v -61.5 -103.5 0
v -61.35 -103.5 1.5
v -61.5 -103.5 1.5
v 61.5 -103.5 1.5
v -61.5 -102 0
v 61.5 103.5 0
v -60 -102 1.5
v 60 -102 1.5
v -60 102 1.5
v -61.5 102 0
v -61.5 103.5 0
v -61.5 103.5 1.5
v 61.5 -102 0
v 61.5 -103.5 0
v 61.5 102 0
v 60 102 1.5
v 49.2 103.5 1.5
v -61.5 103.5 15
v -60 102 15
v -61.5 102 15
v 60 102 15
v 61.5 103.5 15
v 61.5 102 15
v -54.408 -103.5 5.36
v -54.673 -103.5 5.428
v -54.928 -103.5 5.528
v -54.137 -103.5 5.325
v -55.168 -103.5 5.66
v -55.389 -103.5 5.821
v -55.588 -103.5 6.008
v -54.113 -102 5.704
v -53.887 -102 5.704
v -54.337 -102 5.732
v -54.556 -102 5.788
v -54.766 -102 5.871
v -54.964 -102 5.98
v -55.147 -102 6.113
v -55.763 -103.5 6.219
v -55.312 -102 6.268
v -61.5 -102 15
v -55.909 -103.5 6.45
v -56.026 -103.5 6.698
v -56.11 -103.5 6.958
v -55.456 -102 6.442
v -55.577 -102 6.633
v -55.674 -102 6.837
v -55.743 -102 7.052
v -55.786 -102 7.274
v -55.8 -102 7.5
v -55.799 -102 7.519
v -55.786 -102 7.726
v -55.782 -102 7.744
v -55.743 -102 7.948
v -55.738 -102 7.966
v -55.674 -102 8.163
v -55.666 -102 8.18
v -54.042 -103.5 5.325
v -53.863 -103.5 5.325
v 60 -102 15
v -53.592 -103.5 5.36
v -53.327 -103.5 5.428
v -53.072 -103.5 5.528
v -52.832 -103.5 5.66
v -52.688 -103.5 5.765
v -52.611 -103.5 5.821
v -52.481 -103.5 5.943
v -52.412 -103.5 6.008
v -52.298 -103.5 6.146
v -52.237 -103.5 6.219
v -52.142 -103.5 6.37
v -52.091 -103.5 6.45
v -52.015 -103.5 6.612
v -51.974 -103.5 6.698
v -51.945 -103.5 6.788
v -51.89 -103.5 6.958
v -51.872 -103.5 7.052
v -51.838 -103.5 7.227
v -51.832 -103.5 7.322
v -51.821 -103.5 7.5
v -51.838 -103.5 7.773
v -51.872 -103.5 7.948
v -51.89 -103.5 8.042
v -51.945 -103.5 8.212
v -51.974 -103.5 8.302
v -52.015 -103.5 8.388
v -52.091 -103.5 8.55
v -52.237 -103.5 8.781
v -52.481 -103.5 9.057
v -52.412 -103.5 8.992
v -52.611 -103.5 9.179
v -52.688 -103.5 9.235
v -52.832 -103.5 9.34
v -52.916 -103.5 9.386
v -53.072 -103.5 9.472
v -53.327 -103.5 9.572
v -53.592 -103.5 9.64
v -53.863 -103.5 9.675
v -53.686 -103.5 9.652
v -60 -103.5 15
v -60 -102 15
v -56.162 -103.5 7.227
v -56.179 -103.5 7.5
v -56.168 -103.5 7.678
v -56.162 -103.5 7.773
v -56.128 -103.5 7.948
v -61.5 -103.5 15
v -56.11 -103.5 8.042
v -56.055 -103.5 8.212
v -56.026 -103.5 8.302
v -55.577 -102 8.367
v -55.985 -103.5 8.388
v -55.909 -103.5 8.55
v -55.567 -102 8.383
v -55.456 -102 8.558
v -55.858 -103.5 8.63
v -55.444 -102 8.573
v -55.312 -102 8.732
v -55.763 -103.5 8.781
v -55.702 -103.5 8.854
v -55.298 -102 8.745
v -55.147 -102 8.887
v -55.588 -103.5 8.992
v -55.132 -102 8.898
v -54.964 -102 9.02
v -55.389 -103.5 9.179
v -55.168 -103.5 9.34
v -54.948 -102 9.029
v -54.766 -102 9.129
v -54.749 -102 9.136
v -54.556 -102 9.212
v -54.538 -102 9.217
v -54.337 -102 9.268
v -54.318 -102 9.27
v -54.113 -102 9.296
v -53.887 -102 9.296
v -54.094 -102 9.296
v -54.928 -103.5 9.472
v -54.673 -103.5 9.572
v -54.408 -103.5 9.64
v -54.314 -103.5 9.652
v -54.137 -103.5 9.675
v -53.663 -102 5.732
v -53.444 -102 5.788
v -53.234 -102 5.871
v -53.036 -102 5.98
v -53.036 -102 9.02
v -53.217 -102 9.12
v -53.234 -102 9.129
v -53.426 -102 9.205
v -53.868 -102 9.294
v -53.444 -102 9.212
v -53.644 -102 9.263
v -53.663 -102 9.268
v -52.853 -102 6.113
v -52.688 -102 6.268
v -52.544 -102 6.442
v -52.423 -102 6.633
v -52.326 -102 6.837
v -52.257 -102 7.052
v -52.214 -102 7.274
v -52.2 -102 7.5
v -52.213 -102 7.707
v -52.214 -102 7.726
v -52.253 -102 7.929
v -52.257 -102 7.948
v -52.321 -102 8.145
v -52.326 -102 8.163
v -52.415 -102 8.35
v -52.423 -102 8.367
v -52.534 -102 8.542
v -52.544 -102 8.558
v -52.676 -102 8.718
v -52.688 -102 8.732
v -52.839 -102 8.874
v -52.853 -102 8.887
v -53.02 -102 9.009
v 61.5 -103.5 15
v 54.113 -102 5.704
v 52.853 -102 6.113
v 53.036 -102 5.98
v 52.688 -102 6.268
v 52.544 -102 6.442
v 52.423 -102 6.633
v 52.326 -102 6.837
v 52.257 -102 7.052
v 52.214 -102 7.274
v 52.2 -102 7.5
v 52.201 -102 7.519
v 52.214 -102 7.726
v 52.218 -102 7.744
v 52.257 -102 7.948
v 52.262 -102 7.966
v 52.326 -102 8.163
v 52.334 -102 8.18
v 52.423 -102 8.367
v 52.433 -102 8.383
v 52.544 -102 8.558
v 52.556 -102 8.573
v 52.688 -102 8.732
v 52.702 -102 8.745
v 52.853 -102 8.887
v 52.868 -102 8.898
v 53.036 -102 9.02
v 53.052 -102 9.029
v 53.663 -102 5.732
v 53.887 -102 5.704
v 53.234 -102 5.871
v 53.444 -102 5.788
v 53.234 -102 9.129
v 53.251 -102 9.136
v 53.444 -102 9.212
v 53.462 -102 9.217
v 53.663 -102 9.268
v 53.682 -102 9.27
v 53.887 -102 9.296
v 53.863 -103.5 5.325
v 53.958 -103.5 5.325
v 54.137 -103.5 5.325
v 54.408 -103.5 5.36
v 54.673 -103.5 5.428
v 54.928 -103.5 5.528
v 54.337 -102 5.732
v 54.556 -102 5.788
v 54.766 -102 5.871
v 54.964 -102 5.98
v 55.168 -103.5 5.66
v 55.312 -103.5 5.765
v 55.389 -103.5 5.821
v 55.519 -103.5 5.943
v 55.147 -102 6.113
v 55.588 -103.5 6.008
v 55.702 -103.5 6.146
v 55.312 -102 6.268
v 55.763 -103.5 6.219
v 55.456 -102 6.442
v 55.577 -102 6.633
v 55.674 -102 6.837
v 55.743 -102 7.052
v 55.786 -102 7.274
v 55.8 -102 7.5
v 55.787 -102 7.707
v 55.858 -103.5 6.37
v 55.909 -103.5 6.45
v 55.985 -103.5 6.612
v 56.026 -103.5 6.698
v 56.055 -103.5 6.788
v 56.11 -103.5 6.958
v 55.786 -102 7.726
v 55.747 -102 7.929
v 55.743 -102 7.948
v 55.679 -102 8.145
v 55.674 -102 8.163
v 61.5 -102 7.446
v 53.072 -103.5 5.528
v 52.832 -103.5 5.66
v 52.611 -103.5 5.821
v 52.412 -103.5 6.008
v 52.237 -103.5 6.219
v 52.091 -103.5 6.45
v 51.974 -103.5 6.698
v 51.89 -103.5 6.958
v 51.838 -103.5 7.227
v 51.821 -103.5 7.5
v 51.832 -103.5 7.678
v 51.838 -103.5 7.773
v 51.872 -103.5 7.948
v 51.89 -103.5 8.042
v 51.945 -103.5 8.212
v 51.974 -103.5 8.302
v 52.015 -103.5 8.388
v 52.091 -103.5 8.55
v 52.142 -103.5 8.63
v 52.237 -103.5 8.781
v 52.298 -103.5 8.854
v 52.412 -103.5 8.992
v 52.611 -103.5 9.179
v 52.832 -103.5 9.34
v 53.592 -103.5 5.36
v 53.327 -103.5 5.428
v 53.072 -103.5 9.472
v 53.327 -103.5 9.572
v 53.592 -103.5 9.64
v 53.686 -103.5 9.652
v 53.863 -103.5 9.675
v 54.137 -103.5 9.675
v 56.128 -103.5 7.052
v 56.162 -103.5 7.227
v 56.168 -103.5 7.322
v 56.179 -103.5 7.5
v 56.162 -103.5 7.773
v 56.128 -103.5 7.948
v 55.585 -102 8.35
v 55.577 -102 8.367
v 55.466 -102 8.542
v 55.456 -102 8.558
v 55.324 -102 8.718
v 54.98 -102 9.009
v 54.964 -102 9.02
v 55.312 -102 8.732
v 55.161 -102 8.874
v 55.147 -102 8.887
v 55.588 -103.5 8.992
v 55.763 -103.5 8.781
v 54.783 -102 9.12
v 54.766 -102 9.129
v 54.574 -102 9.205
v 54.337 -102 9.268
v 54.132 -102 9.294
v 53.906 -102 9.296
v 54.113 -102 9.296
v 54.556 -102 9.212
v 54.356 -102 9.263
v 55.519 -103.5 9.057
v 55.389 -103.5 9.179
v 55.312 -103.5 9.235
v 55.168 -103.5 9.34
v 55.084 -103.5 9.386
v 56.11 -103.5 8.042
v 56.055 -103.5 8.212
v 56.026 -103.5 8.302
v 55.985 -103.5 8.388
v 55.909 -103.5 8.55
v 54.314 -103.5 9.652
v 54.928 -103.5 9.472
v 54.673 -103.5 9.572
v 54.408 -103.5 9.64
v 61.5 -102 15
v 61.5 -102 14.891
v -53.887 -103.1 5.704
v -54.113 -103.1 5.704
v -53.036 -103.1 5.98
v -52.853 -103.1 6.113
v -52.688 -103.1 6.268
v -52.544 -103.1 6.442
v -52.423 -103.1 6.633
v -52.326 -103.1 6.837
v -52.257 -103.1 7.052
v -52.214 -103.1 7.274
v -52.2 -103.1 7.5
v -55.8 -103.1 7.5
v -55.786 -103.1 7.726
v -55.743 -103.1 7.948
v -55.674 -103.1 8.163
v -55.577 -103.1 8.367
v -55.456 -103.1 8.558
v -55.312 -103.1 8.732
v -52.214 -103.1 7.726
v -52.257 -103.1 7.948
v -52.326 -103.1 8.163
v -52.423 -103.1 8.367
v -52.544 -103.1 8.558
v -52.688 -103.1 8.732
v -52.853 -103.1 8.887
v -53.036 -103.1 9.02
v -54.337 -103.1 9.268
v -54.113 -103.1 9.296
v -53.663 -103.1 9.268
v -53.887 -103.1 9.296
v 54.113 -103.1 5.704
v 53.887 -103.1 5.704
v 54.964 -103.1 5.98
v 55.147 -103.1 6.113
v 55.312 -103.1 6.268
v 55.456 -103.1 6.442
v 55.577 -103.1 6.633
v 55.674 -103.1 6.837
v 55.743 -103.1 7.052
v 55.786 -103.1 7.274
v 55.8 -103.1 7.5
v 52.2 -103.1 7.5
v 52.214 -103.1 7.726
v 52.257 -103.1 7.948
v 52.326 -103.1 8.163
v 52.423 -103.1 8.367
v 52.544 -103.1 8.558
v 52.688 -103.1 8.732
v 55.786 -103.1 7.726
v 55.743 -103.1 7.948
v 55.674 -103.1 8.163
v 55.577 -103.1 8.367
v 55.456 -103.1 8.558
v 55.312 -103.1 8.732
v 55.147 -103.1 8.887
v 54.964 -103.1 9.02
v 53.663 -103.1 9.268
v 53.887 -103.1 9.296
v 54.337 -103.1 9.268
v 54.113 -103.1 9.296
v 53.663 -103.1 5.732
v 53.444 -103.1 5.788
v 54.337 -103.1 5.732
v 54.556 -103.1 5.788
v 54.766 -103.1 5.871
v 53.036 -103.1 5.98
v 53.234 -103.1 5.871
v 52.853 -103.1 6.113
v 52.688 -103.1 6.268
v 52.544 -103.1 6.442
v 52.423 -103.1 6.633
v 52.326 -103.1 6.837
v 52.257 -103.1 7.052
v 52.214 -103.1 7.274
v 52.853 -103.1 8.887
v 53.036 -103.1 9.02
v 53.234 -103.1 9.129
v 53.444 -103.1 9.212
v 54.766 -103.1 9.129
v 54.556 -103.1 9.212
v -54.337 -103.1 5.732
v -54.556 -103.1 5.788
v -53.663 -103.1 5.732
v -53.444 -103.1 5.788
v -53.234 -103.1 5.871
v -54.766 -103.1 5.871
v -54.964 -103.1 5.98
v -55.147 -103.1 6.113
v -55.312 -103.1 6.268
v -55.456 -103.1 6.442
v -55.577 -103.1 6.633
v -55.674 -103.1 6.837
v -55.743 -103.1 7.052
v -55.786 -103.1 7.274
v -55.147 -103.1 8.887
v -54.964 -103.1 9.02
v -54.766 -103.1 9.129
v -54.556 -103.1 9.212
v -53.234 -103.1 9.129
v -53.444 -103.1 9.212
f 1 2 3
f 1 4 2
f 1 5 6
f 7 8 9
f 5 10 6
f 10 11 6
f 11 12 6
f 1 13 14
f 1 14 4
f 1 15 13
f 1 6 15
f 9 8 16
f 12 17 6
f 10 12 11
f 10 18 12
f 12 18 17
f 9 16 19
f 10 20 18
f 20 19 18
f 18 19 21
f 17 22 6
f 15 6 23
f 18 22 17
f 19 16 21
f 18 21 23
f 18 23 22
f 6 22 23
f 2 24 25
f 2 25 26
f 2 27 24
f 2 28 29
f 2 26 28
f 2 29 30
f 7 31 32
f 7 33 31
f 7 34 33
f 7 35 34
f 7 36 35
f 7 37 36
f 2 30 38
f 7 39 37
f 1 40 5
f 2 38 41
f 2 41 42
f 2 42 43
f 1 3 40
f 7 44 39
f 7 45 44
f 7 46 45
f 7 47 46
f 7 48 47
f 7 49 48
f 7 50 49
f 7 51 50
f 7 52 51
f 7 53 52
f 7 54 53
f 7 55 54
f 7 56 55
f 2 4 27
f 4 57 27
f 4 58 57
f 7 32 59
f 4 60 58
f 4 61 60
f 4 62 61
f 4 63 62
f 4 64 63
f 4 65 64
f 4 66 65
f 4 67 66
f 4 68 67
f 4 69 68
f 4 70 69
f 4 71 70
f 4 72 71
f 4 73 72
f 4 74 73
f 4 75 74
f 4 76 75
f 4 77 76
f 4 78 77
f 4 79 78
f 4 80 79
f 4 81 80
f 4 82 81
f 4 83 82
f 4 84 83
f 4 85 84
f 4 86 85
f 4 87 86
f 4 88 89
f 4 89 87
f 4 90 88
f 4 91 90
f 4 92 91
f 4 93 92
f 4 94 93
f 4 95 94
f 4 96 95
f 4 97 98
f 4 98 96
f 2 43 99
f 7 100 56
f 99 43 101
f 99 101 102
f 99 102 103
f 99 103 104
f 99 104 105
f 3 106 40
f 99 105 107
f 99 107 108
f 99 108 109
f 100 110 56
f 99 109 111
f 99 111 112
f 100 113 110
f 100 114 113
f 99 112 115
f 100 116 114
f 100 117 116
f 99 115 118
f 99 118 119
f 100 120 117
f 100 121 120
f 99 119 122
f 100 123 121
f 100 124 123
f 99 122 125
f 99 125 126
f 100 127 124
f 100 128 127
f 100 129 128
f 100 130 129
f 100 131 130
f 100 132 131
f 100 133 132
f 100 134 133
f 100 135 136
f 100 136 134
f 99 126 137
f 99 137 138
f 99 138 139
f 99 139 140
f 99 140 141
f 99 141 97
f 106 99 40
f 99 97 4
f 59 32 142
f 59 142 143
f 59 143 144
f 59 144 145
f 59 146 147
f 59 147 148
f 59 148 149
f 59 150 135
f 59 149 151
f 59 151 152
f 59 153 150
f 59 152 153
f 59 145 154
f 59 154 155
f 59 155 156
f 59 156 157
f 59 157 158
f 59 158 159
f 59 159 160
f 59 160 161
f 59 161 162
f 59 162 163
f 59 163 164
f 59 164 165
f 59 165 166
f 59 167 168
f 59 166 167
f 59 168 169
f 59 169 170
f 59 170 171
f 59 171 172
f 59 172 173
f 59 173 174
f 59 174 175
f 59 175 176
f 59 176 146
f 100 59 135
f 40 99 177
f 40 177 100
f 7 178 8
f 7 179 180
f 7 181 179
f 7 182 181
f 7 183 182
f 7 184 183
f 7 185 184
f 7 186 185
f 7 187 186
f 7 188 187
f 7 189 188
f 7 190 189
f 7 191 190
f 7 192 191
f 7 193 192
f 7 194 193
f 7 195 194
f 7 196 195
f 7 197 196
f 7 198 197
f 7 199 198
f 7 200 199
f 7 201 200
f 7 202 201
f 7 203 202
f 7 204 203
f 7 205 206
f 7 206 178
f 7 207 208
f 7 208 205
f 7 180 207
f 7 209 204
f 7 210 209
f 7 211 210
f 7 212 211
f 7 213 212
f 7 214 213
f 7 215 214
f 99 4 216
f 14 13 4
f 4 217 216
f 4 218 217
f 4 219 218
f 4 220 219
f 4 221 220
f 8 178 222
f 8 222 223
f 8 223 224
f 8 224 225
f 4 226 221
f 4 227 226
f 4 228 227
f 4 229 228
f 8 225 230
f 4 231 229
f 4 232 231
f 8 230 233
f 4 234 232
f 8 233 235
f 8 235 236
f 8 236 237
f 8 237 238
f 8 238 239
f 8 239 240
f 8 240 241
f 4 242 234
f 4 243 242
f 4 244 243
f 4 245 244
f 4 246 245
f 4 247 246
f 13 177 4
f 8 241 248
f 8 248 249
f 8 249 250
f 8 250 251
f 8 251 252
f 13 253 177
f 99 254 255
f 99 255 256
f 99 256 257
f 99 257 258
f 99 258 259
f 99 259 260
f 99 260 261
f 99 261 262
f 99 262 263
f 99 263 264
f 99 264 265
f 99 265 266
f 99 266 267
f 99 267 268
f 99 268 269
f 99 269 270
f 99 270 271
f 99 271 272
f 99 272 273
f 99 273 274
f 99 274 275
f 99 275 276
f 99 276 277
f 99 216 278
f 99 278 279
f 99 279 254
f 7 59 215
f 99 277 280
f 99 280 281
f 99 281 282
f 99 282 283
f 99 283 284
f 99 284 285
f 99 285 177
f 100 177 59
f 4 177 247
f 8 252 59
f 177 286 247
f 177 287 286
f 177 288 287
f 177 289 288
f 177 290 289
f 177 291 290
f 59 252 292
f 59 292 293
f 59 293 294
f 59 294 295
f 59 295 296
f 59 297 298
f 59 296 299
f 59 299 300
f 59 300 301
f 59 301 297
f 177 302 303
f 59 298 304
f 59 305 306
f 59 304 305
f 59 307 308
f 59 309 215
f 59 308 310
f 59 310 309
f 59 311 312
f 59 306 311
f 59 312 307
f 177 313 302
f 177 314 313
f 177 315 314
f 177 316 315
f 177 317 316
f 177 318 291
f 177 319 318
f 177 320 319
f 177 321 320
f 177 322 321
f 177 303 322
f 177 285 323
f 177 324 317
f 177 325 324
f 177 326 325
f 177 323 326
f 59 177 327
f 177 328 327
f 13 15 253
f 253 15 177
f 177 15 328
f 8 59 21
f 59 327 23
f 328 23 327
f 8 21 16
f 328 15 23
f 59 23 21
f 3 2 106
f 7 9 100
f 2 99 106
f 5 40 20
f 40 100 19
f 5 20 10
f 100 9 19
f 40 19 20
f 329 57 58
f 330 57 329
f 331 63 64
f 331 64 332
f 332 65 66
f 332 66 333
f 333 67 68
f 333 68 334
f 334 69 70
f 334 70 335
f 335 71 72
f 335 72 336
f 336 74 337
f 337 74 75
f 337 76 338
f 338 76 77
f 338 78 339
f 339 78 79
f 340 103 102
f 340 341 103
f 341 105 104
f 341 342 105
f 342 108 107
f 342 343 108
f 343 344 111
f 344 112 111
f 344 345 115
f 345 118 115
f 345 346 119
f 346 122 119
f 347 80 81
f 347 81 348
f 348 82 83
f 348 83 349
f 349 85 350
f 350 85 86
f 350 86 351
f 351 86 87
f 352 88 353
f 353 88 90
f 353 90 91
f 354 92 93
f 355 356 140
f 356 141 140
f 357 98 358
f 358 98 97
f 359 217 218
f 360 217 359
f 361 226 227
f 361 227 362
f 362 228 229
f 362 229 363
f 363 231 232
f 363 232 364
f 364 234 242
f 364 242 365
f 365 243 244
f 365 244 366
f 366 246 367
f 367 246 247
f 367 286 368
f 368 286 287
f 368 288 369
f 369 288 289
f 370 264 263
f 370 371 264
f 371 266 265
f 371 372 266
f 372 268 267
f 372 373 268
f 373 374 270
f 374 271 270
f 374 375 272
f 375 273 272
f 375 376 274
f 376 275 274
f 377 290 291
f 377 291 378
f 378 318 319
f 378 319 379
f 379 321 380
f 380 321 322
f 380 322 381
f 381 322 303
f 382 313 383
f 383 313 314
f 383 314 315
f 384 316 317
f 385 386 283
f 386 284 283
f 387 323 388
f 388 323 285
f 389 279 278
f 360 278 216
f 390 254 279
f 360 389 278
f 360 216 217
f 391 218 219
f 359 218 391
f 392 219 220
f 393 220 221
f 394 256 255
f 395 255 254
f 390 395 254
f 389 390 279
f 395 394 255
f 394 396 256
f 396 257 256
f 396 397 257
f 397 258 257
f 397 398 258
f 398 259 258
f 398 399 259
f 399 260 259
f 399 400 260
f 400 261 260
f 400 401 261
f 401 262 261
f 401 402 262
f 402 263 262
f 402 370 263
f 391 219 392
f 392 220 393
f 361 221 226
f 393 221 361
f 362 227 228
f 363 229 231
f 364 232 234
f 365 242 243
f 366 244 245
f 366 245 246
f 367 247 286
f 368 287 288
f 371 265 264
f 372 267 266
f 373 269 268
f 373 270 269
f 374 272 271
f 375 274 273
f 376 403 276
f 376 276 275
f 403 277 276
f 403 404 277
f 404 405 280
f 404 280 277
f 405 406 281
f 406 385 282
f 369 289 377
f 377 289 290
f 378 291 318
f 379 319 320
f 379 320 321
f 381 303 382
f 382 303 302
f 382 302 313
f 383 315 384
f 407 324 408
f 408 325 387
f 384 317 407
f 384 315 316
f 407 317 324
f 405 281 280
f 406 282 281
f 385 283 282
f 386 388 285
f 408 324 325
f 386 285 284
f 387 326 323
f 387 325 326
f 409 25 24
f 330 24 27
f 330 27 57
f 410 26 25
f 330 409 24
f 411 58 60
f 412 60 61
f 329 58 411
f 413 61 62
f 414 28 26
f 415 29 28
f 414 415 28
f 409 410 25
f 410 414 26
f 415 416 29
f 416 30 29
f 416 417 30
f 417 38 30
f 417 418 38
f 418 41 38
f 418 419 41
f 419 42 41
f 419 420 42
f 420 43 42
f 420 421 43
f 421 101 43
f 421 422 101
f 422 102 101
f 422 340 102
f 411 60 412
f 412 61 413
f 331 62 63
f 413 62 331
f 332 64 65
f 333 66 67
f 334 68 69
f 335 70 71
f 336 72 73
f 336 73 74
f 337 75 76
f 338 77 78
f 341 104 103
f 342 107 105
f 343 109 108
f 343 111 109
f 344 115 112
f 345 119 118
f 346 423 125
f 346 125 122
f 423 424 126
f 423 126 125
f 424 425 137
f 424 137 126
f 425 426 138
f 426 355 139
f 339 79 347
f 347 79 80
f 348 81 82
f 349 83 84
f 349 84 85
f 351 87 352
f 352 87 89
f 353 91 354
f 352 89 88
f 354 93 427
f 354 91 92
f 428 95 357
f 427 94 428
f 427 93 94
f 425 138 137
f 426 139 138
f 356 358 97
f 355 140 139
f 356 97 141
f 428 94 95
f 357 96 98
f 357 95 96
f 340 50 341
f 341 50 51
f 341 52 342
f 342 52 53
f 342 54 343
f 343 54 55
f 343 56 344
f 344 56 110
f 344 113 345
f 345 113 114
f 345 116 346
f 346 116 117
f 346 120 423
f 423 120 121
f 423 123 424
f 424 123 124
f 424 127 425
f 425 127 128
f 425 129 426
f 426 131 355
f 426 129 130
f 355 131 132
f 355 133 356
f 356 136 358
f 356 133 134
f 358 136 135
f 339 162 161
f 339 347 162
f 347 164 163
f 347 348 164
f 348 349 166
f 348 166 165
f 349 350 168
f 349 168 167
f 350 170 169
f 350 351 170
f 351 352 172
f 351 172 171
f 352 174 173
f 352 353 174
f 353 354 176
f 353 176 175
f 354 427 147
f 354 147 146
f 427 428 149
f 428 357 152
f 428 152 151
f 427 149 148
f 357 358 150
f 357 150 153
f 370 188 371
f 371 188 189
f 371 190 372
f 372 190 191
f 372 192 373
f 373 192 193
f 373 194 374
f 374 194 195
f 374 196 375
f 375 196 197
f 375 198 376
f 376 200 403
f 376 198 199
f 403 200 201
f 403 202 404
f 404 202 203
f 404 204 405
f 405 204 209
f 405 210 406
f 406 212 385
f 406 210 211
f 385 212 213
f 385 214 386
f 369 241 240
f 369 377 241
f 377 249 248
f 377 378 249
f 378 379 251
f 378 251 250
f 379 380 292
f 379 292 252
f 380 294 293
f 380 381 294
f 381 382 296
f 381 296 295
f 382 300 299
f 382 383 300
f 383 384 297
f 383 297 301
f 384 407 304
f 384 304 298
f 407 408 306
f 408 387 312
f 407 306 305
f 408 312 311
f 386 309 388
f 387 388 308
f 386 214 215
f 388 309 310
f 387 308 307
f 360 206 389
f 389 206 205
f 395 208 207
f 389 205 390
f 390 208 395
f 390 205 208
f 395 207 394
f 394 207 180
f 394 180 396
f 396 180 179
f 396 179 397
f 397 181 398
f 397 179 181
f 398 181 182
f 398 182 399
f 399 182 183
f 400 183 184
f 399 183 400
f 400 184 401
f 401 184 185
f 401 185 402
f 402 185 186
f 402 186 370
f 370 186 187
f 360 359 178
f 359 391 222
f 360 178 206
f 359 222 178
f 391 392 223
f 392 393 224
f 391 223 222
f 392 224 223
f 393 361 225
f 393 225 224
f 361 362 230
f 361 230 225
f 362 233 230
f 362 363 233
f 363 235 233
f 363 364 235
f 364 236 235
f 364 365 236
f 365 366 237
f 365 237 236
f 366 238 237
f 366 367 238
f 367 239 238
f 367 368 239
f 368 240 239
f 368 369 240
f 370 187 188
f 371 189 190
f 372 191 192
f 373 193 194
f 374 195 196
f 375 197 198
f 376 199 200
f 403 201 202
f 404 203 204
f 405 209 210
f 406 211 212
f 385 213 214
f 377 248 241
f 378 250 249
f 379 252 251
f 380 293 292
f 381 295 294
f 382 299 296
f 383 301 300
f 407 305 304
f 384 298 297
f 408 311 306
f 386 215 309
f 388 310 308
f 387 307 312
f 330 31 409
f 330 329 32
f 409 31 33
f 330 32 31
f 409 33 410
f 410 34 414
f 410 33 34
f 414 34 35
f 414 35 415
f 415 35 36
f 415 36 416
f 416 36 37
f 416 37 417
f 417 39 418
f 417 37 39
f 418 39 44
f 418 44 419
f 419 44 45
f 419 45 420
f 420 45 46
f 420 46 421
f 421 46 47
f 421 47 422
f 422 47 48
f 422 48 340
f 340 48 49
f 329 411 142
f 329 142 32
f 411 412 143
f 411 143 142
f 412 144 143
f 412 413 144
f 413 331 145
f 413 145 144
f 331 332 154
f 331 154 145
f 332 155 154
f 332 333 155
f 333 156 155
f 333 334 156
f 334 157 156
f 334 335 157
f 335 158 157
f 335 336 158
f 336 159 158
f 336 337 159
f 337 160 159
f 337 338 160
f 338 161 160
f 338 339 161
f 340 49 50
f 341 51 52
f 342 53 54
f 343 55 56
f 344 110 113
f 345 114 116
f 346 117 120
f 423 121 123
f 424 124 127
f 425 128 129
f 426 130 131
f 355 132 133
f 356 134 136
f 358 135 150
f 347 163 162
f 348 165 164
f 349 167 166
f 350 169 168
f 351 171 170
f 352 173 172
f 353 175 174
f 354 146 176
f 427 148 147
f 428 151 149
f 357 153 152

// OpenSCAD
$fn = 50;


difference() {
	union() {
		translate(v = [-61.5000000000, -103.5000000000, 0]) {
			cube(size = [123, 207, 1.5000000000]);
		}
		translate(v = [-61.5000000000, 102.0000000000, 0]) {
			cube(size = [123, 1.5000000000, 15]);
		}
		translate(v = [-61.5000000000, -103.5000000000, 0]) {
			cube(size = [123, 1.5000000000, 15]);
		}
		translate(v = [60.0000000000, -103.5000000000, 0]) {
			cube(size = [1.5000000000, 207, 15]);
		}
		translate(v = [-61.5000000000, -103.5000000000, 0]) {
			cube(size = [1.5000000000, 207, 15]);
		}
	}
	union() {
		translate(v = [54.0000000000, -105.0000000000, 7.5000000000]) {
			rotate(a = [90, 0, 0]) {
				difference() {
					union() {
						#translate(v = [0, 0, -15.0000000000]) {
							cylinder(h = 15, r = 1.5000000000);
						}
						#translate(v = [0, 0, -1.9000000000]) {
							cylinder(h = 1.9000000000, r1 = 1.8000000000, r2 = 3.6000000000);
						}
						#translate(v = [0, 0, -15.0000000000]) {
							cylinder(h = 15, r = 1.8000000000);
						}
						#translate(v = [0, 0, -15.0000000000]) {
							cylinder(h = 15, r = 1.5000000000);
						}
					}
					union();
				}
			}
		}
		translate(v = [-54.0000000000, -105.0000000000, 7.5000000000]) {
			rotate(a = [90, 0, 0]) {
				difference() {
					union() {
						#translate(v = [0, 0, -15.0000000000]) {
							cylinder(h = 15, r = 1.5000000000);
						}
						#translate(v = [0, 0, -1.9000000000]) {
							cylinder(h = 1.9000000000, r1 = 1.8000000000, r2 = 3.6000000000);
						}
						#translate(v = [0, 0, -15.0000000000]) {
							cylinder(h = 15, r = 1.8000000000);
						}
						#translate(v = [0, 0, -15.0000000000]) {
							cylinder(h = 15, r = 1.5000000000);
						}
					}
					union();
				}
			}
		}
		translate(v = [54.0000000000, -105.0000000000, 7.5000000000]) {
			rotate(a = [90, 0, 0]) {
				difference() {
					union() {
						#translate(v = [0, 0, -15.0000000000]) {
							cylinder(h = 15, r = 1.5000000000);
						}
						#translate(v = [0, 0, -1.9000000000]) {
							cylinder(h = 1.9000000000, r1 = 1.8000000000, r2 = 3.6000000000);
						}
						#translate(v = [0, 0, -15.0000000000]) {
							cylinder(h = 15, r = 1.8000000000);
						}
						#translate(v = [0, 0, -15.0000000000]) {
							cylinder(h = 15, r = 1.5000000000);
						}
					}
					union();
				}
			}
		}
		translate(v = [-54.0000000000, -105.0000000000, 7.5000000000]) {
			rotate(a = [90, 0, 0]) {
				difference() {
					union() {
						#translate(v = [0, 0, -15.0000000000]) {
							cylinder(h = 15, r = 1.5000000000);
						}
						#translate(v = [0, 0, -1.9000000000]) {
							cylinder(h = 1.9000000000, r1 = 1.8000000000, r2 = 3.6000000000);
						}
						#translate(v = [0, 0, -15.0000000000]) {
							cylinder(h = 15, r = 1.8000000000);
						}
						#translate(v = [0, 0, -15.0000000000]) {
							cylinder(h = 15, r = 1.5000000000);
						}
					}
					union();
				}
			}
		}
	}
}
